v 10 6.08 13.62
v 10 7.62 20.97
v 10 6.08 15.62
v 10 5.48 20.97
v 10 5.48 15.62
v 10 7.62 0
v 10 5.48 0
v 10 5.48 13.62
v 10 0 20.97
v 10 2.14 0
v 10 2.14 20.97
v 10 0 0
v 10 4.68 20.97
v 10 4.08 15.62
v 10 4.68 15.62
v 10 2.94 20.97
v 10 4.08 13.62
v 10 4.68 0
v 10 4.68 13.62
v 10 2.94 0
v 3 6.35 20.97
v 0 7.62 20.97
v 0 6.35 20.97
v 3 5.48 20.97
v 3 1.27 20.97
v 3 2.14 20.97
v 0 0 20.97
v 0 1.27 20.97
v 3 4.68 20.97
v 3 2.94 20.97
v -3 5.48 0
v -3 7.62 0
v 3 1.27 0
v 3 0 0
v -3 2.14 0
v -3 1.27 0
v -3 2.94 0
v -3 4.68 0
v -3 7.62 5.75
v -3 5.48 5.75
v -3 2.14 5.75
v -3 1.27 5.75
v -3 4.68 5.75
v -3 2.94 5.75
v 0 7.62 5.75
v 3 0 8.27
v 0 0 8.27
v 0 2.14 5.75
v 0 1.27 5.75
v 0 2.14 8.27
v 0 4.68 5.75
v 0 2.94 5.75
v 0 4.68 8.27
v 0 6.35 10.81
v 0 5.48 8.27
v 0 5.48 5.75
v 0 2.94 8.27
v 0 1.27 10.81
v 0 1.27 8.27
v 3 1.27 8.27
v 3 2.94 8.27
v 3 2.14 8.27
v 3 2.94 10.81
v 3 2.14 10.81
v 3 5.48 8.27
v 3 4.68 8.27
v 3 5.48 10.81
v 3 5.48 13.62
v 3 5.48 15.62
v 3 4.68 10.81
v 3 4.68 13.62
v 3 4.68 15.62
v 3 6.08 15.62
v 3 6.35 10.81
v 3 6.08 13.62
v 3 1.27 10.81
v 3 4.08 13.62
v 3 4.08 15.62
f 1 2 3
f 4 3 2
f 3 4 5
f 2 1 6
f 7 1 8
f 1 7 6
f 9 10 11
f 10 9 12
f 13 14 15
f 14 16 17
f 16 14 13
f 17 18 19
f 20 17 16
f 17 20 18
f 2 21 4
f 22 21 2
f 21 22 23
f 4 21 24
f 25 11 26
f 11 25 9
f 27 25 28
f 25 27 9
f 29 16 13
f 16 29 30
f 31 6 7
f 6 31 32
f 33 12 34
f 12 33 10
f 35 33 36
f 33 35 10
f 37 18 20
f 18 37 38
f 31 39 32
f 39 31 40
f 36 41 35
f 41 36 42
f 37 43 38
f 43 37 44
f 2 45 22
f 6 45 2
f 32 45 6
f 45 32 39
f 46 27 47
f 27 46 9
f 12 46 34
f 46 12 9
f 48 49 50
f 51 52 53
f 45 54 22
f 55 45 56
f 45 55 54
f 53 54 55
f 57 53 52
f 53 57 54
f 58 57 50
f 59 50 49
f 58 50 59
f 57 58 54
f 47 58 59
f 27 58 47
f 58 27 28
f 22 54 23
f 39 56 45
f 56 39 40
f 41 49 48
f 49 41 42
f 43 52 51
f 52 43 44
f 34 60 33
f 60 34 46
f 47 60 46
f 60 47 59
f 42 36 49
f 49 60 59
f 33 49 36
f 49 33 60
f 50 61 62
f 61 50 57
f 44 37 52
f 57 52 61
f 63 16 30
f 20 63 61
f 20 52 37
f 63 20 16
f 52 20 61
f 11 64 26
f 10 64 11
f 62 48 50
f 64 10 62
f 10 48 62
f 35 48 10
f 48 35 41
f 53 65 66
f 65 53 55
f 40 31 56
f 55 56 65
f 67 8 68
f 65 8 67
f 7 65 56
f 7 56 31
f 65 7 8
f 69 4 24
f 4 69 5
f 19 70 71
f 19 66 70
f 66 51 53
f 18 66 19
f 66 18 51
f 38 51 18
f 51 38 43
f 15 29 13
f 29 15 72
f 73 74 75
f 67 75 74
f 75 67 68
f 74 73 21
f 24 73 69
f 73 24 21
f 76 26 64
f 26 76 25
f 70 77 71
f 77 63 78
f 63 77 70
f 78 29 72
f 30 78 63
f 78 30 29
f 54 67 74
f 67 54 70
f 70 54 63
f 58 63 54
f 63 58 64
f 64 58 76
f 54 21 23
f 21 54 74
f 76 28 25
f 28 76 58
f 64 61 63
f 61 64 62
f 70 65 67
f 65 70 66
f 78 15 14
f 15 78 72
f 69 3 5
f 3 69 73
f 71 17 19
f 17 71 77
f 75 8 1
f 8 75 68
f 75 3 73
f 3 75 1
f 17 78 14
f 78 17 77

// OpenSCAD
pin_pitch = 2.54; // how evenly spaced the pins are
shell_width = 2; // space for GPIO 2
pin_length = 7;
end_thickness = 0;
pin_hold = 3;
pin_gauge = 0.8;
buck_out = 3;
buck_bottom = 5.75;
overshot = 1;

block_width = buck_out+pin_hold+pin_length+end_thickness;
block_height = pin_length + 5.5 * pin_pitch;

pin_holes = false;

difference() {
  translate([-buck_out,0,0])
    cube([block_width,
      3* pin_pitch,
      block_height]);
  translate([-buck_out-overshot,-overshot,buck_bottom])
    cube([buck_out+overshot,
      3* pin_pitch + 2*overshot,
      block_height]);
  // buck vin channel
  translate([-buck_out-overshot,-pin_pitch/2,-overshot])
    cube([buck_out+pin_hold+overshot,
      pin_pitch,
      pin_length+pin_pitch/2+overshot]);
  // buck vout channel
  translate([-buck_out-overshot,pin_pitch-pin_gauge/2,-overshot])
    cube([block_width+2*overshot,
      pin_gauge,
      pin_length+pin_pitch/2+overshot]);
  // buck ground channel
  translate([-buck_out-overshot,pin_pitch*2-pin_gauge/2,-overshot])
    cube([block_width+2*overshot,
      pin_gauge,
      pin_length+pin_pitch/2+overshot]);
  // chip spacer
  translate([-overshot,pin_pitch/2,pin_length + 1.5*pin_pitch])
    cube([pin_hold+overshot,
      2*pin_pitch,
      4*pin_pitch+overshot]);
  // chip vcc channel
  translate([pin_hold-overshot, pin_pitch-pin_gauge/2,
    pin_length + 1.5*pin_pitch])
    cube([pin_length+overshot,
      pin_gauge,
      4*pin_pitch+overshot]);
  // chip gnd/gpio channel
  translate([pin_hold-overshot, pin_pitch*2-pin_gauge/2,
    pin_length + 1.5*pin_pitch])
    cube([pin_length+overshot,
      pin_gauge,
      4*pin_pitch+overshot]);
  // vcc pin channel
  translate([pin_hold, pin_pitch-pin_gauge/2,
    pin_length + pin_pitch/2-overshot])
    cube([pin_length+end_thickness+overshot,
      pin_gauge,
      pin_pitch+overshot]);
  // gnd pin channel
  translate([pin_hold, pin_pitch*2-pin_gauge/2,
    pin_length+ pin_pitch/2-overshot])
    cube([pin_length+end_thickness+overshot,
      pin_gauge,
      pin_pitch+overshot]);
  if (pin_holes) {
  // vcc pin hole
    translate([-overshot, pin_pitch-pin_gauge/2,
      pin_length+pin_pitch-pin_gauge/2])
      cube([pin_length+pin_hold+end_thickness+2*overshot,
        pin_gauge,
        pin_gauge]);
    // gnd pin hole
    translate([-overshot, pin_pitch*2-pin_gauge/2,
      pin_length+pin_pitch-pin_gauge/2])
      cube([pin_length+pin_hold+end_thickness+2*overshot,
        pin_gauge,
        pin_gauge]);
  }
  // gpio2 carveout
  translate([pin_hold-overshot, pin_pitch*1.5-(shell_width-pin_pitch)/2,
    pin_length+2.5*pin_pitch-(shell_width-pin_pitch)/2])
    cube([pin_length+end_thickness+2*overshot,
      shell_width,
      shell_width]);
}
